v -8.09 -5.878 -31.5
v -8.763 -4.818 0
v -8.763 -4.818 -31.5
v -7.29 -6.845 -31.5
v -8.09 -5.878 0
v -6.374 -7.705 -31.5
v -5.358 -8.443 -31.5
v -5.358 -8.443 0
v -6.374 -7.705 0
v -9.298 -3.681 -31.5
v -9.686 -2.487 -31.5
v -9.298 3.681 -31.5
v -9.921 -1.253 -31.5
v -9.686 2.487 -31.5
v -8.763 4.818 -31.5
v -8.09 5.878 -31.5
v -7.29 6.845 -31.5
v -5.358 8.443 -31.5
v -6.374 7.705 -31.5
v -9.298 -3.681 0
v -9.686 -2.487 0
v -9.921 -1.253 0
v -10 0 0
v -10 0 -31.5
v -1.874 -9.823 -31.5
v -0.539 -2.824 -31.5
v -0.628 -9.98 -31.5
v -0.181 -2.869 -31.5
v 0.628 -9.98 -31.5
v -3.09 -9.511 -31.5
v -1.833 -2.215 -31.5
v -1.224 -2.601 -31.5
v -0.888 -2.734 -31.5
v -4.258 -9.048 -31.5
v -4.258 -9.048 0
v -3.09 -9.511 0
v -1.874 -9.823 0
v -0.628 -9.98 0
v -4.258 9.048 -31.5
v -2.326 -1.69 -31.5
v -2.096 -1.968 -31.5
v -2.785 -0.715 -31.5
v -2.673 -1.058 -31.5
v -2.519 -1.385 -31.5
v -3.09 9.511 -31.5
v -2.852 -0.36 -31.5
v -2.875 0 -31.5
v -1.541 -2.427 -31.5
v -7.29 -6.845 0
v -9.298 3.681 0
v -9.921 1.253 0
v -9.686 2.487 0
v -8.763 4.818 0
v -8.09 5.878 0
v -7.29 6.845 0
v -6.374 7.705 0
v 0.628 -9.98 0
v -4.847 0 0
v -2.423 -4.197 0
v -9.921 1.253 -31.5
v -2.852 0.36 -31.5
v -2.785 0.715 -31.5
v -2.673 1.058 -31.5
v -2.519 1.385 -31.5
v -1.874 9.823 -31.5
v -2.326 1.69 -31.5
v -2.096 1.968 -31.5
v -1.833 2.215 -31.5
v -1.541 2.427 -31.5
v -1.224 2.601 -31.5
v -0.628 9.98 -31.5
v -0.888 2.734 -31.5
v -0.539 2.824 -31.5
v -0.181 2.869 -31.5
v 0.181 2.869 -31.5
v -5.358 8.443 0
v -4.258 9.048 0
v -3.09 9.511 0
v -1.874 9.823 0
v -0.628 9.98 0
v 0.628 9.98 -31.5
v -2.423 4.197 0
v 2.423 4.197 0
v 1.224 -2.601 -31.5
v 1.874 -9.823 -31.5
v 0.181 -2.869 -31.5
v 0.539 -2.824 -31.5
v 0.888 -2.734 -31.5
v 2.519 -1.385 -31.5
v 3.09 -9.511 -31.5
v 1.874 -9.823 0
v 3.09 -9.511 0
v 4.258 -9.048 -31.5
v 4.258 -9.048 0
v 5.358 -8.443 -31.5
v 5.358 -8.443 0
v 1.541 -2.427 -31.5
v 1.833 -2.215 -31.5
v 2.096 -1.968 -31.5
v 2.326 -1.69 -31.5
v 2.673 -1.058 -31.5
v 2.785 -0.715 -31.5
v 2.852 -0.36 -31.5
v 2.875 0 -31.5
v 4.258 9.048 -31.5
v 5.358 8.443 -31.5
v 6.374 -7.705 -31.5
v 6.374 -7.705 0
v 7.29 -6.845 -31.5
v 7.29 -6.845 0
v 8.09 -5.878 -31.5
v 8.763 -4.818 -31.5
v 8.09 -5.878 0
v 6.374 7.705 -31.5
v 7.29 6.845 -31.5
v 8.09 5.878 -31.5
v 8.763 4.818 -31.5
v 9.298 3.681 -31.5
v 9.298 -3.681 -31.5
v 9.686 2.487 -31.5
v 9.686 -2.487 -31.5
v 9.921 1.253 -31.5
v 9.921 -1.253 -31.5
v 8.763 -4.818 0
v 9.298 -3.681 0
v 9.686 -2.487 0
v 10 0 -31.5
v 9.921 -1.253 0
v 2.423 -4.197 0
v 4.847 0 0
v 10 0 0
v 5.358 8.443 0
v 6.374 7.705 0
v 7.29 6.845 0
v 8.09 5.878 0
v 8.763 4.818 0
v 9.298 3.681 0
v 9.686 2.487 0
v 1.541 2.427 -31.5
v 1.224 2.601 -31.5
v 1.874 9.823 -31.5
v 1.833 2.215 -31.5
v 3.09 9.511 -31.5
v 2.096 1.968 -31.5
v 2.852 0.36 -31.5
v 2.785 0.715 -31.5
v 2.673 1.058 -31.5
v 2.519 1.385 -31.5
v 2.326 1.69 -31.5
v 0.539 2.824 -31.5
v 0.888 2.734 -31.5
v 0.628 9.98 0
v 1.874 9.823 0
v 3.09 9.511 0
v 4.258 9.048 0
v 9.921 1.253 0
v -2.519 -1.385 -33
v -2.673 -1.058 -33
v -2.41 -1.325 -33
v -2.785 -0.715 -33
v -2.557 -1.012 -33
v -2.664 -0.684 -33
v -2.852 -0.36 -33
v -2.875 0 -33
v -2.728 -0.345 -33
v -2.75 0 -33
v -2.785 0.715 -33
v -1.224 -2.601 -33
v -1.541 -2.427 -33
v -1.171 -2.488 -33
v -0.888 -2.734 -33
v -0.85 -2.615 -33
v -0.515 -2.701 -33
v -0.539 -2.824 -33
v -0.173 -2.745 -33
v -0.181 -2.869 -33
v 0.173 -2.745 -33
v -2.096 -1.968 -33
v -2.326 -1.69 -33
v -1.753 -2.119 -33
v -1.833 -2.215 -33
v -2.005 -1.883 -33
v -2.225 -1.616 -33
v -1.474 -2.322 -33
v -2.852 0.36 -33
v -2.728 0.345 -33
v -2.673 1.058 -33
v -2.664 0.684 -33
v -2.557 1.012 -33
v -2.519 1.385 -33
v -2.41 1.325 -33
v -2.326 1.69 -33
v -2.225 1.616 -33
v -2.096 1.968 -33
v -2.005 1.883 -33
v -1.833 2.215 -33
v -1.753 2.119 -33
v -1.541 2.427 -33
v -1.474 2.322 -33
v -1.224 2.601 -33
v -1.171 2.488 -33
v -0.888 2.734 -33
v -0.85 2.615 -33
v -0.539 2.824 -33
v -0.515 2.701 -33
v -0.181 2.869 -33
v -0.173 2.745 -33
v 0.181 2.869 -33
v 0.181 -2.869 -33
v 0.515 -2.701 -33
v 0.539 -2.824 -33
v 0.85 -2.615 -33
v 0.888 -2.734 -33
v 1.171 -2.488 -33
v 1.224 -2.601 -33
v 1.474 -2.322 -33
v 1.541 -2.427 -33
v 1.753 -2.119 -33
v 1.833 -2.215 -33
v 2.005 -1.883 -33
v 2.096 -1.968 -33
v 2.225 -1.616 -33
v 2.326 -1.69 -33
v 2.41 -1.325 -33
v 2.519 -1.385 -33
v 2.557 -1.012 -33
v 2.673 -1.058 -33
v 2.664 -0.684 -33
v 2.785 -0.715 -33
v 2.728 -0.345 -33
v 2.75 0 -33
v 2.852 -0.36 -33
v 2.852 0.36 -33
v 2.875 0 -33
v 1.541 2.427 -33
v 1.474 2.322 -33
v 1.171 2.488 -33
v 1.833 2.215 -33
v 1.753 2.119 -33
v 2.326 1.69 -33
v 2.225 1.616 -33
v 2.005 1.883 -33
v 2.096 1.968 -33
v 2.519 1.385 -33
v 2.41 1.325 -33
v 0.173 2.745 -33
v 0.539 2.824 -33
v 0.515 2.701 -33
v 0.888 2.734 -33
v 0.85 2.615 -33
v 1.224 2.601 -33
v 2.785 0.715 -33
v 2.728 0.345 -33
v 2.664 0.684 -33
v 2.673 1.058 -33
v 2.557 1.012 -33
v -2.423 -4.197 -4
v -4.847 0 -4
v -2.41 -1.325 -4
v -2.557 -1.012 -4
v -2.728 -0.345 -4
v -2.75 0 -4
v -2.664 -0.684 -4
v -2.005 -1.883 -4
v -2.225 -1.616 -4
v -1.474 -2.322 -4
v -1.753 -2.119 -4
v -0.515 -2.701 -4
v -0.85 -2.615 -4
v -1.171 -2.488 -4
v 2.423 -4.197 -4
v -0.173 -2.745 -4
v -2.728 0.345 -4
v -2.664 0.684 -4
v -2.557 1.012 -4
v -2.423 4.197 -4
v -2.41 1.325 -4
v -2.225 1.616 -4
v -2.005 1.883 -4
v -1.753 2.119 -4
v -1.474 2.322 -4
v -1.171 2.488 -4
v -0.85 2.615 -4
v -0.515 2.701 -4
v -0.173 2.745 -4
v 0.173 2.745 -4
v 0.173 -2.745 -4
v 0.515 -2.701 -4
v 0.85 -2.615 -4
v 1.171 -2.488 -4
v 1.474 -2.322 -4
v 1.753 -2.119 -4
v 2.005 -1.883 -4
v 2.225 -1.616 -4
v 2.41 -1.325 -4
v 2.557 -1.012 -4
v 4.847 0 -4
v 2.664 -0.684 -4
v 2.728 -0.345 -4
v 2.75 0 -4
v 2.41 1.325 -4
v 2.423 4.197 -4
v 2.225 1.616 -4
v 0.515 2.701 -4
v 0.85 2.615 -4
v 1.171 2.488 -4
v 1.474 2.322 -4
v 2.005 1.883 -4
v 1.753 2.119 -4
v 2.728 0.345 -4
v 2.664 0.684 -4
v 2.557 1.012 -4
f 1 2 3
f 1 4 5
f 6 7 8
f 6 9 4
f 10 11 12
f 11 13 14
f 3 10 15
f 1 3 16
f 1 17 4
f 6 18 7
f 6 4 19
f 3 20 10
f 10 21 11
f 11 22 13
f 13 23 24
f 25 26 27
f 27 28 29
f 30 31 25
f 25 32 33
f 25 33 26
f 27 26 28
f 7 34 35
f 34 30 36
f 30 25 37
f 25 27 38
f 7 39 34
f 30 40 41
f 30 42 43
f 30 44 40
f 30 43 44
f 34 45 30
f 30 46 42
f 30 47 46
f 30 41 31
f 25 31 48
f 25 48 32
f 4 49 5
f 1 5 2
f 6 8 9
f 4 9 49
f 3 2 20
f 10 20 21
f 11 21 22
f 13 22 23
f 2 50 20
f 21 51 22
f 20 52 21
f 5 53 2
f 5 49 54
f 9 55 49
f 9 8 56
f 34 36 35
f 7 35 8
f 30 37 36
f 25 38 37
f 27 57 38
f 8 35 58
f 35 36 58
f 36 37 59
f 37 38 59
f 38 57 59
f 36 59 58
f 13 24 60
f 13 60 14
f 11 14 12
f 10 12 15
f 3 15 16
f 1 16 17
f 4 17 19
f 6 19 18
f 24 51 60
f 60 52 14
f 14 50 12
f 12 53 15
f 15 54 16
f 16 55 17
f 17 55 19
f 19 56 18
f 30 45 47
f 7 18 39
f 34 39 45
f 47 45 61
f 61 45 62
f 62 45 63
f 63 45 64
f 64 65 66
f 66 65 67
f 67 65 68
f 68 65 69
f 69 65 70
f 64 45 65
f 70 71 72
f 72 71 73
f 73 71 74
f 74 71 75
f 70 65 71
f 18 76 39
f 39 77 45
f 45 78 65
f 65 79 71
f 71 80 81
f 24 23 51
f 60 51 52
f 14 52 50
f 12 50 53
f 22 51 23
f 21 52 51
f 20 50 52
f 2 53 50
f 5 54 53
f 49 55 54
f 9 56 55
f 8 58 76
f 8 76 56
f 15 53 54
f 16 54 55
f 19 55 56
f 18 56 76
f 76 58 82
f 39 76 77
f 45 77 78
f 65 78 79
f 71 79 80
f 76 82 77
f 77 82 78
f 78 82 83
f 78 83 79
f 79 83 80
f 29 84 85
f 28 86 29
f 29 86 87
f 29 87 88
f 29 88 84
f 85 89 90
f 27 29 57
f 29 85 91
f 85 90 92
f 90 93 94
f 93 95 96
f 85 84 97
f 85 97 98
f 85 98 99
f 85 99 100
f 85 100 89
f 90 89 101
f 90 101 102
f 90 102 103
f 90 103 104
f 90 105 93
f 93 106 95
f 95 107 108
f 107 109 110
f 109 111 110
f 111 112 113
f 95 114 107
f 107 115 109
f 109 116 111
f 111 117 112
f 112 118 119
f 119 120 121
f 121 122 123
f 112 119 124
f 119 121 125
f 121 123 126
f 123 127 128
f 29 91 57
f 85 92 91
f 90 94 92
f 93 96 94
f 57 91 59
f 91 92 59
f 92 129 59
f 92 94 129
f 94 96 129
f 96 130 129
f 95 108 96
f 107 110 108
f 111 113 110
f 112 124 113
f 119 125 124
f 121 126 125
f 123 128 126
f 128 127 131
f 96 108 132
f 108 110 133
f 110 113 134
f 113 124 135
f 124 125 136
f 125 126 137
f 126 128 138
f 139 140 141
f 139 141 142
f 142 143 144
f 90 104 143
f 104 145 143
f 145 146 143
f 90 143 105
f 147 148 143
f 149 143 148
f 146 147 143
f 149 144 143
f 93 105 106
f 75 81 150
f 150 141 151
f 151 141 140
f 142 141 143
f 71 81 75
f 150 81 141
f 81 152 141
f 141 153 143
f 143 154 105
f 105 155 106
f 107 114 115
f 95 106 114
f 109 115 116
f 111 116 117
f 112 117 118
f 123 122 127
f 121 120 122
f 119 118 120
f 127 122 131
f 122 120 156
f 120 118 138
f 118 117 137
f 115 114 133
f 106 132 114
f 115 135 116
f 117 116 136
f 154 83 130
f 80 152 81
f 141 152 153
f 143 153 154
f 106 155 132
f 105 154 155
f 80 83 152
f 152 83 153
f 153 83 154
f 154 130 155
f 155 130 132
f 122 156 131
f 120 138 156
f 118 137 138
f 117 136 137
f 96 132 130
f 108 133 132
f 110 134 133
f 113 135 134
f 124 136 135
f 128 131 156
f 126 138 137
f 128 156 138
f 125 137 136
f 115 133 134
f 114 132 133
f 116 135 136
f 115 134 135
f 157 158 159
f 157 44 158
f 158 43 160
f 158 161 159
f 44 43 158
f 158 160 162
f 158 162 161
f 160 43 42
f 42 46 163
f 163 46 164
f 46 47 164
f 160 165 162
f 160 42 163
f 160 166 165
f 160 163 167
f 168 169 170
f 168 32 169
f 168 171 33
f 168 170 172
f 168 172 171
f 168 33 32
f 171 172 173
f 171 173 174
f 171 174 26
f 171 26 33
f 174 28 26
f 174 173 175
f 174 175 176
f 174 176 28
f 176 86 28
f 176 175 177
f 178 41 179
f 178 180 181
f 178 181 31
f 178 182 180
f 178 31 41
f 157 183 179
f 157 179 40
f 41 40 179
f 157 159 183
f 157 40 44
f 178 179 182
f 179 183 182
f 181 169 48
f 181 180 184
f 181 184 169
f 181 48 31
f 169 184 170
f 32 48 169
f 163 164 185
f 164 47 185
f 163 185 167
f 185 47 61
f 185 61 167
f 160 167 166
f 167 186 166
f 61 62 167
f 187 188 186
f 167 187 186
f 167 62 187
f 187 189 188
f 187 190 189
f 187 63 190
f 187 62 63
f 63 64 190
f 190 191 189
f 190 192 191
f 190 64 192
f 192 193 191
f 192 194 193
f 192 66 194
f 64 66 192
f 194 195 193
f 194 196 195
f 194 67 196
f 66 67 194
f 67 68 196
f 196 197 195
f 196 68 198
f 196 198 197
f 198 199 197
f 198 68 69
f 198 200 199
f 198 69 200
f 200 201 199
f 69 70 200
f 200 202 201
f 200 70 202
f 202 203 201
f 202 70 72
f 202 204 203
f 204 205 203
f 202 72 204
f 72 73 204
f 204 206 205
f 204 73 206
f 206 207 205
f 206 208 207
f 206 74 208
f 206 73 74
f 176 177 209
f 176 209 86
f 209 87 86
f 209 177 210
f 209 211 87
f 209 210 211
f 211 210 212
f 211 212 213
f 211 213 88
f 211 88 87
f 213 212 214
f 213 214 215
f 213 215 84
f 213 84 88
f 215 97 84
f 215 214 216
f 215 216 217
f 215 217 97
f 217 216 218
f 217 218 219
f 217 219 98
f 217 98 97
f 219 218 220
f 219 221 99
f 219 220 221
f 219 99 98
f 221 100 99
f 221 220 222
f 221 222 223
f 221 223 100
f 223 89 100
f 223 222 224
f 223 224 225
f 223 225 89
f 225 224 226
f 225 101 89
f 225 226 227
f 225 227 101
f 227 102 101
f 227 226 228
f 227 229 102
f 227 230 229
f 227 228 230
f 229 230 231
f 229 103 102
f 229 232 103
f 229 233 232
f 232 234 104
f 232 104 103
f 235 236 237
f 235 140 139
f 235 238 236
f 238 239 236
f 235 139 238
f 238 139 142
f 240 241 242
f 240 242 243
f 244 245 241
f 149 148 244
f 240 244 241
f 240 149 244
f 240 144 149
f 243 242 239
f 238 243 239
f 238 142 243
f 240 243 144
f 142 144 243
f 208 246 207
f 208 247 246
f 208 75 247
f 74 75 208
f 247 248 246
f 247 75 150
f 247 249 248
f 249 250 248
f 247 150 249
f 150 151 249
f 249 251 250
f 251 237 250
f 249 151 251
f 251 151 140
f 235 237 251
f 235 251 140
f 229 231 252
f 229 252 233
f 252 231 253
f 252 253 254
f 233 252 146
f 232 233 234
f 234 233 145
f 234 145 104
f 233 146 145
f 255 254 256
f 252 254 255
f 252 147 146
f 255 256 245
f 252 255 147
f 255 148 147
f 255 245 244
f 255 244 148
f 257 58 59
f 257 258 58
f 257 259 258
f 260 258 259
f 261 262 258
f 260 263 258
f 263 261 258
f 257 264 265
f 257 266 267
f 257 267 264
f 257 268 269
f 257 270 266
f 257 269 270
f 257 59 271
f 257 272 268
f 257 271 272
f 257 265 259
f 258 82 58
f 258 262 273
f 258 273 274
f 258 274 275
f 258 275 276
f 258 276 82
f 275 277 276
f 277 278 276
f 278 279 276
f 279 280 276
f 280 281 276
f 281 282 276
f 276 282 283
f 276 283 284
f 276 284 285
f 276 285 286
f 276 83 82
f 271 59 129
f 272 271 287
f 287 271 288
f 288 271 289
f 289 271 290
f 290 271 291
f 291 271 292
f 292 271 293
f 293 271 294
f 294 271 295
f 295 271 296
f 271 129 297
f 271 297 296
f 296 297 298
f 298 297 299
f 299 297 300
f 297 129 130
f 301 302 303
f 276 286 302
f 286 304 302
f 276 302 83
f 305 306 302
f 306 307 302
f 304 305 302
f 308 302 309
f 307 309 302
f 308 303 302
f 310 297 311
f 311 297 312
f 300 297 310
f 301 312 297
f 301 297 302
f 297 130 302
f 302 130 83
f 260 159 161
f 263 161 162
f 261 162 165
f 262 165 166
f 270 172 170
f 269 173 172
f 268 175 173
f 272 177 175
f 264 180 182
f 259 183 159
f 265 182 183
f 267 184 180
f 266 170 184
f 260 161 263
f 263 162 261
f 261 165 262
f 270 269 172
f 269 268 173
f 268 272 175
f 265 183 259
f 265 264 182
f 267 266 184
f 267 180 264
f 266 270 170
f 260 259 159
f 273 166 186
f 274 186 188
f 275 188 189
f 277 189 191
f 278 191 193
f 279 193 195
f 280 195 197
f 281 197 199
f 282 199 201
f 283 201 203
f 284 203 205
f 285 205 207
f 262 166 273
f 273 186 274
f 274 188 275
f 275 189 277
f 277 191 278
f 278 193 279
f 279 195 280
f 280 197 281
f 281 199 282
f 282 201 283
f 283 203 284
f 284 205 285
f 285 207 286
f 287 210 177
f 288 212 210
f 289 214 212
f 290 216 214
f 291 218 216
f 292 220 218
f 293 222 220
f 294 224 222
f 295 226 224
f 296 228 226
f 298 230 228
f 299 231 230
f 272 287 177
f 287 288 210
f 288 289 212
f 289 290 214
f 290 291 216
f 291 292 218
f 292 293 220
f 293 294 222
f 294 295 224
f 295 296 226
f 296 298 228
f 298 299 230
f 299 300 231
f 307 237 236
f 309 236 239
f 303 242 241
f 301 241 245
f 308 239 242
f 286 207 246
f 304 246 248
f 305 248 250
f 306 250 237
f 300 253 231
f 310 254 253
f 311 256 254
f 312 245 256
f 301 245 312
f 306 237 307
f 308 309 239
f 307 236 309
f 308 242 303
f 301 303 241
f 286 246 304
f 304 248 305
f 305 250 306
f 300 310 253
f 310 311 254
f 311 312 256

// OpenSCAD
$fn = 50;


difference() {
	union() {
		translate(v = [0, 0, -31.5000000000]) {
			cylinder(h = 31.5000000000, r = 10.0000000000);
		}
		#translate(v = [0, 0, -33.0000000000]) {
			cylinder(h = 33, r = 2.8750000000);
		}
	}
	union() {
		translate(v = [0, 0, 0]) {
			rotate(a = [0, 0, 0]) {
				difference() {
					union() {
						translate(v = [0, 0, -4]) {
							linear_extrude(height = 4) {
								polygon(points = [[4.8468000000, 0.0000000000], [2.4234000000, 4.1974519271], [-2.4234000000, 4.1974519271], [-4.8468000000, 0.0000000000], [-2.4234000000, -4.1974519271], [2.4234000000, -4.1974519271]]);
							}
						}
					}
					union();
				}
			}
		}
		#translate(v = [0, 0, -100.0000000000]) {
			cylinder(h = 200, r = 2.7500000000);
		}
	}
}
